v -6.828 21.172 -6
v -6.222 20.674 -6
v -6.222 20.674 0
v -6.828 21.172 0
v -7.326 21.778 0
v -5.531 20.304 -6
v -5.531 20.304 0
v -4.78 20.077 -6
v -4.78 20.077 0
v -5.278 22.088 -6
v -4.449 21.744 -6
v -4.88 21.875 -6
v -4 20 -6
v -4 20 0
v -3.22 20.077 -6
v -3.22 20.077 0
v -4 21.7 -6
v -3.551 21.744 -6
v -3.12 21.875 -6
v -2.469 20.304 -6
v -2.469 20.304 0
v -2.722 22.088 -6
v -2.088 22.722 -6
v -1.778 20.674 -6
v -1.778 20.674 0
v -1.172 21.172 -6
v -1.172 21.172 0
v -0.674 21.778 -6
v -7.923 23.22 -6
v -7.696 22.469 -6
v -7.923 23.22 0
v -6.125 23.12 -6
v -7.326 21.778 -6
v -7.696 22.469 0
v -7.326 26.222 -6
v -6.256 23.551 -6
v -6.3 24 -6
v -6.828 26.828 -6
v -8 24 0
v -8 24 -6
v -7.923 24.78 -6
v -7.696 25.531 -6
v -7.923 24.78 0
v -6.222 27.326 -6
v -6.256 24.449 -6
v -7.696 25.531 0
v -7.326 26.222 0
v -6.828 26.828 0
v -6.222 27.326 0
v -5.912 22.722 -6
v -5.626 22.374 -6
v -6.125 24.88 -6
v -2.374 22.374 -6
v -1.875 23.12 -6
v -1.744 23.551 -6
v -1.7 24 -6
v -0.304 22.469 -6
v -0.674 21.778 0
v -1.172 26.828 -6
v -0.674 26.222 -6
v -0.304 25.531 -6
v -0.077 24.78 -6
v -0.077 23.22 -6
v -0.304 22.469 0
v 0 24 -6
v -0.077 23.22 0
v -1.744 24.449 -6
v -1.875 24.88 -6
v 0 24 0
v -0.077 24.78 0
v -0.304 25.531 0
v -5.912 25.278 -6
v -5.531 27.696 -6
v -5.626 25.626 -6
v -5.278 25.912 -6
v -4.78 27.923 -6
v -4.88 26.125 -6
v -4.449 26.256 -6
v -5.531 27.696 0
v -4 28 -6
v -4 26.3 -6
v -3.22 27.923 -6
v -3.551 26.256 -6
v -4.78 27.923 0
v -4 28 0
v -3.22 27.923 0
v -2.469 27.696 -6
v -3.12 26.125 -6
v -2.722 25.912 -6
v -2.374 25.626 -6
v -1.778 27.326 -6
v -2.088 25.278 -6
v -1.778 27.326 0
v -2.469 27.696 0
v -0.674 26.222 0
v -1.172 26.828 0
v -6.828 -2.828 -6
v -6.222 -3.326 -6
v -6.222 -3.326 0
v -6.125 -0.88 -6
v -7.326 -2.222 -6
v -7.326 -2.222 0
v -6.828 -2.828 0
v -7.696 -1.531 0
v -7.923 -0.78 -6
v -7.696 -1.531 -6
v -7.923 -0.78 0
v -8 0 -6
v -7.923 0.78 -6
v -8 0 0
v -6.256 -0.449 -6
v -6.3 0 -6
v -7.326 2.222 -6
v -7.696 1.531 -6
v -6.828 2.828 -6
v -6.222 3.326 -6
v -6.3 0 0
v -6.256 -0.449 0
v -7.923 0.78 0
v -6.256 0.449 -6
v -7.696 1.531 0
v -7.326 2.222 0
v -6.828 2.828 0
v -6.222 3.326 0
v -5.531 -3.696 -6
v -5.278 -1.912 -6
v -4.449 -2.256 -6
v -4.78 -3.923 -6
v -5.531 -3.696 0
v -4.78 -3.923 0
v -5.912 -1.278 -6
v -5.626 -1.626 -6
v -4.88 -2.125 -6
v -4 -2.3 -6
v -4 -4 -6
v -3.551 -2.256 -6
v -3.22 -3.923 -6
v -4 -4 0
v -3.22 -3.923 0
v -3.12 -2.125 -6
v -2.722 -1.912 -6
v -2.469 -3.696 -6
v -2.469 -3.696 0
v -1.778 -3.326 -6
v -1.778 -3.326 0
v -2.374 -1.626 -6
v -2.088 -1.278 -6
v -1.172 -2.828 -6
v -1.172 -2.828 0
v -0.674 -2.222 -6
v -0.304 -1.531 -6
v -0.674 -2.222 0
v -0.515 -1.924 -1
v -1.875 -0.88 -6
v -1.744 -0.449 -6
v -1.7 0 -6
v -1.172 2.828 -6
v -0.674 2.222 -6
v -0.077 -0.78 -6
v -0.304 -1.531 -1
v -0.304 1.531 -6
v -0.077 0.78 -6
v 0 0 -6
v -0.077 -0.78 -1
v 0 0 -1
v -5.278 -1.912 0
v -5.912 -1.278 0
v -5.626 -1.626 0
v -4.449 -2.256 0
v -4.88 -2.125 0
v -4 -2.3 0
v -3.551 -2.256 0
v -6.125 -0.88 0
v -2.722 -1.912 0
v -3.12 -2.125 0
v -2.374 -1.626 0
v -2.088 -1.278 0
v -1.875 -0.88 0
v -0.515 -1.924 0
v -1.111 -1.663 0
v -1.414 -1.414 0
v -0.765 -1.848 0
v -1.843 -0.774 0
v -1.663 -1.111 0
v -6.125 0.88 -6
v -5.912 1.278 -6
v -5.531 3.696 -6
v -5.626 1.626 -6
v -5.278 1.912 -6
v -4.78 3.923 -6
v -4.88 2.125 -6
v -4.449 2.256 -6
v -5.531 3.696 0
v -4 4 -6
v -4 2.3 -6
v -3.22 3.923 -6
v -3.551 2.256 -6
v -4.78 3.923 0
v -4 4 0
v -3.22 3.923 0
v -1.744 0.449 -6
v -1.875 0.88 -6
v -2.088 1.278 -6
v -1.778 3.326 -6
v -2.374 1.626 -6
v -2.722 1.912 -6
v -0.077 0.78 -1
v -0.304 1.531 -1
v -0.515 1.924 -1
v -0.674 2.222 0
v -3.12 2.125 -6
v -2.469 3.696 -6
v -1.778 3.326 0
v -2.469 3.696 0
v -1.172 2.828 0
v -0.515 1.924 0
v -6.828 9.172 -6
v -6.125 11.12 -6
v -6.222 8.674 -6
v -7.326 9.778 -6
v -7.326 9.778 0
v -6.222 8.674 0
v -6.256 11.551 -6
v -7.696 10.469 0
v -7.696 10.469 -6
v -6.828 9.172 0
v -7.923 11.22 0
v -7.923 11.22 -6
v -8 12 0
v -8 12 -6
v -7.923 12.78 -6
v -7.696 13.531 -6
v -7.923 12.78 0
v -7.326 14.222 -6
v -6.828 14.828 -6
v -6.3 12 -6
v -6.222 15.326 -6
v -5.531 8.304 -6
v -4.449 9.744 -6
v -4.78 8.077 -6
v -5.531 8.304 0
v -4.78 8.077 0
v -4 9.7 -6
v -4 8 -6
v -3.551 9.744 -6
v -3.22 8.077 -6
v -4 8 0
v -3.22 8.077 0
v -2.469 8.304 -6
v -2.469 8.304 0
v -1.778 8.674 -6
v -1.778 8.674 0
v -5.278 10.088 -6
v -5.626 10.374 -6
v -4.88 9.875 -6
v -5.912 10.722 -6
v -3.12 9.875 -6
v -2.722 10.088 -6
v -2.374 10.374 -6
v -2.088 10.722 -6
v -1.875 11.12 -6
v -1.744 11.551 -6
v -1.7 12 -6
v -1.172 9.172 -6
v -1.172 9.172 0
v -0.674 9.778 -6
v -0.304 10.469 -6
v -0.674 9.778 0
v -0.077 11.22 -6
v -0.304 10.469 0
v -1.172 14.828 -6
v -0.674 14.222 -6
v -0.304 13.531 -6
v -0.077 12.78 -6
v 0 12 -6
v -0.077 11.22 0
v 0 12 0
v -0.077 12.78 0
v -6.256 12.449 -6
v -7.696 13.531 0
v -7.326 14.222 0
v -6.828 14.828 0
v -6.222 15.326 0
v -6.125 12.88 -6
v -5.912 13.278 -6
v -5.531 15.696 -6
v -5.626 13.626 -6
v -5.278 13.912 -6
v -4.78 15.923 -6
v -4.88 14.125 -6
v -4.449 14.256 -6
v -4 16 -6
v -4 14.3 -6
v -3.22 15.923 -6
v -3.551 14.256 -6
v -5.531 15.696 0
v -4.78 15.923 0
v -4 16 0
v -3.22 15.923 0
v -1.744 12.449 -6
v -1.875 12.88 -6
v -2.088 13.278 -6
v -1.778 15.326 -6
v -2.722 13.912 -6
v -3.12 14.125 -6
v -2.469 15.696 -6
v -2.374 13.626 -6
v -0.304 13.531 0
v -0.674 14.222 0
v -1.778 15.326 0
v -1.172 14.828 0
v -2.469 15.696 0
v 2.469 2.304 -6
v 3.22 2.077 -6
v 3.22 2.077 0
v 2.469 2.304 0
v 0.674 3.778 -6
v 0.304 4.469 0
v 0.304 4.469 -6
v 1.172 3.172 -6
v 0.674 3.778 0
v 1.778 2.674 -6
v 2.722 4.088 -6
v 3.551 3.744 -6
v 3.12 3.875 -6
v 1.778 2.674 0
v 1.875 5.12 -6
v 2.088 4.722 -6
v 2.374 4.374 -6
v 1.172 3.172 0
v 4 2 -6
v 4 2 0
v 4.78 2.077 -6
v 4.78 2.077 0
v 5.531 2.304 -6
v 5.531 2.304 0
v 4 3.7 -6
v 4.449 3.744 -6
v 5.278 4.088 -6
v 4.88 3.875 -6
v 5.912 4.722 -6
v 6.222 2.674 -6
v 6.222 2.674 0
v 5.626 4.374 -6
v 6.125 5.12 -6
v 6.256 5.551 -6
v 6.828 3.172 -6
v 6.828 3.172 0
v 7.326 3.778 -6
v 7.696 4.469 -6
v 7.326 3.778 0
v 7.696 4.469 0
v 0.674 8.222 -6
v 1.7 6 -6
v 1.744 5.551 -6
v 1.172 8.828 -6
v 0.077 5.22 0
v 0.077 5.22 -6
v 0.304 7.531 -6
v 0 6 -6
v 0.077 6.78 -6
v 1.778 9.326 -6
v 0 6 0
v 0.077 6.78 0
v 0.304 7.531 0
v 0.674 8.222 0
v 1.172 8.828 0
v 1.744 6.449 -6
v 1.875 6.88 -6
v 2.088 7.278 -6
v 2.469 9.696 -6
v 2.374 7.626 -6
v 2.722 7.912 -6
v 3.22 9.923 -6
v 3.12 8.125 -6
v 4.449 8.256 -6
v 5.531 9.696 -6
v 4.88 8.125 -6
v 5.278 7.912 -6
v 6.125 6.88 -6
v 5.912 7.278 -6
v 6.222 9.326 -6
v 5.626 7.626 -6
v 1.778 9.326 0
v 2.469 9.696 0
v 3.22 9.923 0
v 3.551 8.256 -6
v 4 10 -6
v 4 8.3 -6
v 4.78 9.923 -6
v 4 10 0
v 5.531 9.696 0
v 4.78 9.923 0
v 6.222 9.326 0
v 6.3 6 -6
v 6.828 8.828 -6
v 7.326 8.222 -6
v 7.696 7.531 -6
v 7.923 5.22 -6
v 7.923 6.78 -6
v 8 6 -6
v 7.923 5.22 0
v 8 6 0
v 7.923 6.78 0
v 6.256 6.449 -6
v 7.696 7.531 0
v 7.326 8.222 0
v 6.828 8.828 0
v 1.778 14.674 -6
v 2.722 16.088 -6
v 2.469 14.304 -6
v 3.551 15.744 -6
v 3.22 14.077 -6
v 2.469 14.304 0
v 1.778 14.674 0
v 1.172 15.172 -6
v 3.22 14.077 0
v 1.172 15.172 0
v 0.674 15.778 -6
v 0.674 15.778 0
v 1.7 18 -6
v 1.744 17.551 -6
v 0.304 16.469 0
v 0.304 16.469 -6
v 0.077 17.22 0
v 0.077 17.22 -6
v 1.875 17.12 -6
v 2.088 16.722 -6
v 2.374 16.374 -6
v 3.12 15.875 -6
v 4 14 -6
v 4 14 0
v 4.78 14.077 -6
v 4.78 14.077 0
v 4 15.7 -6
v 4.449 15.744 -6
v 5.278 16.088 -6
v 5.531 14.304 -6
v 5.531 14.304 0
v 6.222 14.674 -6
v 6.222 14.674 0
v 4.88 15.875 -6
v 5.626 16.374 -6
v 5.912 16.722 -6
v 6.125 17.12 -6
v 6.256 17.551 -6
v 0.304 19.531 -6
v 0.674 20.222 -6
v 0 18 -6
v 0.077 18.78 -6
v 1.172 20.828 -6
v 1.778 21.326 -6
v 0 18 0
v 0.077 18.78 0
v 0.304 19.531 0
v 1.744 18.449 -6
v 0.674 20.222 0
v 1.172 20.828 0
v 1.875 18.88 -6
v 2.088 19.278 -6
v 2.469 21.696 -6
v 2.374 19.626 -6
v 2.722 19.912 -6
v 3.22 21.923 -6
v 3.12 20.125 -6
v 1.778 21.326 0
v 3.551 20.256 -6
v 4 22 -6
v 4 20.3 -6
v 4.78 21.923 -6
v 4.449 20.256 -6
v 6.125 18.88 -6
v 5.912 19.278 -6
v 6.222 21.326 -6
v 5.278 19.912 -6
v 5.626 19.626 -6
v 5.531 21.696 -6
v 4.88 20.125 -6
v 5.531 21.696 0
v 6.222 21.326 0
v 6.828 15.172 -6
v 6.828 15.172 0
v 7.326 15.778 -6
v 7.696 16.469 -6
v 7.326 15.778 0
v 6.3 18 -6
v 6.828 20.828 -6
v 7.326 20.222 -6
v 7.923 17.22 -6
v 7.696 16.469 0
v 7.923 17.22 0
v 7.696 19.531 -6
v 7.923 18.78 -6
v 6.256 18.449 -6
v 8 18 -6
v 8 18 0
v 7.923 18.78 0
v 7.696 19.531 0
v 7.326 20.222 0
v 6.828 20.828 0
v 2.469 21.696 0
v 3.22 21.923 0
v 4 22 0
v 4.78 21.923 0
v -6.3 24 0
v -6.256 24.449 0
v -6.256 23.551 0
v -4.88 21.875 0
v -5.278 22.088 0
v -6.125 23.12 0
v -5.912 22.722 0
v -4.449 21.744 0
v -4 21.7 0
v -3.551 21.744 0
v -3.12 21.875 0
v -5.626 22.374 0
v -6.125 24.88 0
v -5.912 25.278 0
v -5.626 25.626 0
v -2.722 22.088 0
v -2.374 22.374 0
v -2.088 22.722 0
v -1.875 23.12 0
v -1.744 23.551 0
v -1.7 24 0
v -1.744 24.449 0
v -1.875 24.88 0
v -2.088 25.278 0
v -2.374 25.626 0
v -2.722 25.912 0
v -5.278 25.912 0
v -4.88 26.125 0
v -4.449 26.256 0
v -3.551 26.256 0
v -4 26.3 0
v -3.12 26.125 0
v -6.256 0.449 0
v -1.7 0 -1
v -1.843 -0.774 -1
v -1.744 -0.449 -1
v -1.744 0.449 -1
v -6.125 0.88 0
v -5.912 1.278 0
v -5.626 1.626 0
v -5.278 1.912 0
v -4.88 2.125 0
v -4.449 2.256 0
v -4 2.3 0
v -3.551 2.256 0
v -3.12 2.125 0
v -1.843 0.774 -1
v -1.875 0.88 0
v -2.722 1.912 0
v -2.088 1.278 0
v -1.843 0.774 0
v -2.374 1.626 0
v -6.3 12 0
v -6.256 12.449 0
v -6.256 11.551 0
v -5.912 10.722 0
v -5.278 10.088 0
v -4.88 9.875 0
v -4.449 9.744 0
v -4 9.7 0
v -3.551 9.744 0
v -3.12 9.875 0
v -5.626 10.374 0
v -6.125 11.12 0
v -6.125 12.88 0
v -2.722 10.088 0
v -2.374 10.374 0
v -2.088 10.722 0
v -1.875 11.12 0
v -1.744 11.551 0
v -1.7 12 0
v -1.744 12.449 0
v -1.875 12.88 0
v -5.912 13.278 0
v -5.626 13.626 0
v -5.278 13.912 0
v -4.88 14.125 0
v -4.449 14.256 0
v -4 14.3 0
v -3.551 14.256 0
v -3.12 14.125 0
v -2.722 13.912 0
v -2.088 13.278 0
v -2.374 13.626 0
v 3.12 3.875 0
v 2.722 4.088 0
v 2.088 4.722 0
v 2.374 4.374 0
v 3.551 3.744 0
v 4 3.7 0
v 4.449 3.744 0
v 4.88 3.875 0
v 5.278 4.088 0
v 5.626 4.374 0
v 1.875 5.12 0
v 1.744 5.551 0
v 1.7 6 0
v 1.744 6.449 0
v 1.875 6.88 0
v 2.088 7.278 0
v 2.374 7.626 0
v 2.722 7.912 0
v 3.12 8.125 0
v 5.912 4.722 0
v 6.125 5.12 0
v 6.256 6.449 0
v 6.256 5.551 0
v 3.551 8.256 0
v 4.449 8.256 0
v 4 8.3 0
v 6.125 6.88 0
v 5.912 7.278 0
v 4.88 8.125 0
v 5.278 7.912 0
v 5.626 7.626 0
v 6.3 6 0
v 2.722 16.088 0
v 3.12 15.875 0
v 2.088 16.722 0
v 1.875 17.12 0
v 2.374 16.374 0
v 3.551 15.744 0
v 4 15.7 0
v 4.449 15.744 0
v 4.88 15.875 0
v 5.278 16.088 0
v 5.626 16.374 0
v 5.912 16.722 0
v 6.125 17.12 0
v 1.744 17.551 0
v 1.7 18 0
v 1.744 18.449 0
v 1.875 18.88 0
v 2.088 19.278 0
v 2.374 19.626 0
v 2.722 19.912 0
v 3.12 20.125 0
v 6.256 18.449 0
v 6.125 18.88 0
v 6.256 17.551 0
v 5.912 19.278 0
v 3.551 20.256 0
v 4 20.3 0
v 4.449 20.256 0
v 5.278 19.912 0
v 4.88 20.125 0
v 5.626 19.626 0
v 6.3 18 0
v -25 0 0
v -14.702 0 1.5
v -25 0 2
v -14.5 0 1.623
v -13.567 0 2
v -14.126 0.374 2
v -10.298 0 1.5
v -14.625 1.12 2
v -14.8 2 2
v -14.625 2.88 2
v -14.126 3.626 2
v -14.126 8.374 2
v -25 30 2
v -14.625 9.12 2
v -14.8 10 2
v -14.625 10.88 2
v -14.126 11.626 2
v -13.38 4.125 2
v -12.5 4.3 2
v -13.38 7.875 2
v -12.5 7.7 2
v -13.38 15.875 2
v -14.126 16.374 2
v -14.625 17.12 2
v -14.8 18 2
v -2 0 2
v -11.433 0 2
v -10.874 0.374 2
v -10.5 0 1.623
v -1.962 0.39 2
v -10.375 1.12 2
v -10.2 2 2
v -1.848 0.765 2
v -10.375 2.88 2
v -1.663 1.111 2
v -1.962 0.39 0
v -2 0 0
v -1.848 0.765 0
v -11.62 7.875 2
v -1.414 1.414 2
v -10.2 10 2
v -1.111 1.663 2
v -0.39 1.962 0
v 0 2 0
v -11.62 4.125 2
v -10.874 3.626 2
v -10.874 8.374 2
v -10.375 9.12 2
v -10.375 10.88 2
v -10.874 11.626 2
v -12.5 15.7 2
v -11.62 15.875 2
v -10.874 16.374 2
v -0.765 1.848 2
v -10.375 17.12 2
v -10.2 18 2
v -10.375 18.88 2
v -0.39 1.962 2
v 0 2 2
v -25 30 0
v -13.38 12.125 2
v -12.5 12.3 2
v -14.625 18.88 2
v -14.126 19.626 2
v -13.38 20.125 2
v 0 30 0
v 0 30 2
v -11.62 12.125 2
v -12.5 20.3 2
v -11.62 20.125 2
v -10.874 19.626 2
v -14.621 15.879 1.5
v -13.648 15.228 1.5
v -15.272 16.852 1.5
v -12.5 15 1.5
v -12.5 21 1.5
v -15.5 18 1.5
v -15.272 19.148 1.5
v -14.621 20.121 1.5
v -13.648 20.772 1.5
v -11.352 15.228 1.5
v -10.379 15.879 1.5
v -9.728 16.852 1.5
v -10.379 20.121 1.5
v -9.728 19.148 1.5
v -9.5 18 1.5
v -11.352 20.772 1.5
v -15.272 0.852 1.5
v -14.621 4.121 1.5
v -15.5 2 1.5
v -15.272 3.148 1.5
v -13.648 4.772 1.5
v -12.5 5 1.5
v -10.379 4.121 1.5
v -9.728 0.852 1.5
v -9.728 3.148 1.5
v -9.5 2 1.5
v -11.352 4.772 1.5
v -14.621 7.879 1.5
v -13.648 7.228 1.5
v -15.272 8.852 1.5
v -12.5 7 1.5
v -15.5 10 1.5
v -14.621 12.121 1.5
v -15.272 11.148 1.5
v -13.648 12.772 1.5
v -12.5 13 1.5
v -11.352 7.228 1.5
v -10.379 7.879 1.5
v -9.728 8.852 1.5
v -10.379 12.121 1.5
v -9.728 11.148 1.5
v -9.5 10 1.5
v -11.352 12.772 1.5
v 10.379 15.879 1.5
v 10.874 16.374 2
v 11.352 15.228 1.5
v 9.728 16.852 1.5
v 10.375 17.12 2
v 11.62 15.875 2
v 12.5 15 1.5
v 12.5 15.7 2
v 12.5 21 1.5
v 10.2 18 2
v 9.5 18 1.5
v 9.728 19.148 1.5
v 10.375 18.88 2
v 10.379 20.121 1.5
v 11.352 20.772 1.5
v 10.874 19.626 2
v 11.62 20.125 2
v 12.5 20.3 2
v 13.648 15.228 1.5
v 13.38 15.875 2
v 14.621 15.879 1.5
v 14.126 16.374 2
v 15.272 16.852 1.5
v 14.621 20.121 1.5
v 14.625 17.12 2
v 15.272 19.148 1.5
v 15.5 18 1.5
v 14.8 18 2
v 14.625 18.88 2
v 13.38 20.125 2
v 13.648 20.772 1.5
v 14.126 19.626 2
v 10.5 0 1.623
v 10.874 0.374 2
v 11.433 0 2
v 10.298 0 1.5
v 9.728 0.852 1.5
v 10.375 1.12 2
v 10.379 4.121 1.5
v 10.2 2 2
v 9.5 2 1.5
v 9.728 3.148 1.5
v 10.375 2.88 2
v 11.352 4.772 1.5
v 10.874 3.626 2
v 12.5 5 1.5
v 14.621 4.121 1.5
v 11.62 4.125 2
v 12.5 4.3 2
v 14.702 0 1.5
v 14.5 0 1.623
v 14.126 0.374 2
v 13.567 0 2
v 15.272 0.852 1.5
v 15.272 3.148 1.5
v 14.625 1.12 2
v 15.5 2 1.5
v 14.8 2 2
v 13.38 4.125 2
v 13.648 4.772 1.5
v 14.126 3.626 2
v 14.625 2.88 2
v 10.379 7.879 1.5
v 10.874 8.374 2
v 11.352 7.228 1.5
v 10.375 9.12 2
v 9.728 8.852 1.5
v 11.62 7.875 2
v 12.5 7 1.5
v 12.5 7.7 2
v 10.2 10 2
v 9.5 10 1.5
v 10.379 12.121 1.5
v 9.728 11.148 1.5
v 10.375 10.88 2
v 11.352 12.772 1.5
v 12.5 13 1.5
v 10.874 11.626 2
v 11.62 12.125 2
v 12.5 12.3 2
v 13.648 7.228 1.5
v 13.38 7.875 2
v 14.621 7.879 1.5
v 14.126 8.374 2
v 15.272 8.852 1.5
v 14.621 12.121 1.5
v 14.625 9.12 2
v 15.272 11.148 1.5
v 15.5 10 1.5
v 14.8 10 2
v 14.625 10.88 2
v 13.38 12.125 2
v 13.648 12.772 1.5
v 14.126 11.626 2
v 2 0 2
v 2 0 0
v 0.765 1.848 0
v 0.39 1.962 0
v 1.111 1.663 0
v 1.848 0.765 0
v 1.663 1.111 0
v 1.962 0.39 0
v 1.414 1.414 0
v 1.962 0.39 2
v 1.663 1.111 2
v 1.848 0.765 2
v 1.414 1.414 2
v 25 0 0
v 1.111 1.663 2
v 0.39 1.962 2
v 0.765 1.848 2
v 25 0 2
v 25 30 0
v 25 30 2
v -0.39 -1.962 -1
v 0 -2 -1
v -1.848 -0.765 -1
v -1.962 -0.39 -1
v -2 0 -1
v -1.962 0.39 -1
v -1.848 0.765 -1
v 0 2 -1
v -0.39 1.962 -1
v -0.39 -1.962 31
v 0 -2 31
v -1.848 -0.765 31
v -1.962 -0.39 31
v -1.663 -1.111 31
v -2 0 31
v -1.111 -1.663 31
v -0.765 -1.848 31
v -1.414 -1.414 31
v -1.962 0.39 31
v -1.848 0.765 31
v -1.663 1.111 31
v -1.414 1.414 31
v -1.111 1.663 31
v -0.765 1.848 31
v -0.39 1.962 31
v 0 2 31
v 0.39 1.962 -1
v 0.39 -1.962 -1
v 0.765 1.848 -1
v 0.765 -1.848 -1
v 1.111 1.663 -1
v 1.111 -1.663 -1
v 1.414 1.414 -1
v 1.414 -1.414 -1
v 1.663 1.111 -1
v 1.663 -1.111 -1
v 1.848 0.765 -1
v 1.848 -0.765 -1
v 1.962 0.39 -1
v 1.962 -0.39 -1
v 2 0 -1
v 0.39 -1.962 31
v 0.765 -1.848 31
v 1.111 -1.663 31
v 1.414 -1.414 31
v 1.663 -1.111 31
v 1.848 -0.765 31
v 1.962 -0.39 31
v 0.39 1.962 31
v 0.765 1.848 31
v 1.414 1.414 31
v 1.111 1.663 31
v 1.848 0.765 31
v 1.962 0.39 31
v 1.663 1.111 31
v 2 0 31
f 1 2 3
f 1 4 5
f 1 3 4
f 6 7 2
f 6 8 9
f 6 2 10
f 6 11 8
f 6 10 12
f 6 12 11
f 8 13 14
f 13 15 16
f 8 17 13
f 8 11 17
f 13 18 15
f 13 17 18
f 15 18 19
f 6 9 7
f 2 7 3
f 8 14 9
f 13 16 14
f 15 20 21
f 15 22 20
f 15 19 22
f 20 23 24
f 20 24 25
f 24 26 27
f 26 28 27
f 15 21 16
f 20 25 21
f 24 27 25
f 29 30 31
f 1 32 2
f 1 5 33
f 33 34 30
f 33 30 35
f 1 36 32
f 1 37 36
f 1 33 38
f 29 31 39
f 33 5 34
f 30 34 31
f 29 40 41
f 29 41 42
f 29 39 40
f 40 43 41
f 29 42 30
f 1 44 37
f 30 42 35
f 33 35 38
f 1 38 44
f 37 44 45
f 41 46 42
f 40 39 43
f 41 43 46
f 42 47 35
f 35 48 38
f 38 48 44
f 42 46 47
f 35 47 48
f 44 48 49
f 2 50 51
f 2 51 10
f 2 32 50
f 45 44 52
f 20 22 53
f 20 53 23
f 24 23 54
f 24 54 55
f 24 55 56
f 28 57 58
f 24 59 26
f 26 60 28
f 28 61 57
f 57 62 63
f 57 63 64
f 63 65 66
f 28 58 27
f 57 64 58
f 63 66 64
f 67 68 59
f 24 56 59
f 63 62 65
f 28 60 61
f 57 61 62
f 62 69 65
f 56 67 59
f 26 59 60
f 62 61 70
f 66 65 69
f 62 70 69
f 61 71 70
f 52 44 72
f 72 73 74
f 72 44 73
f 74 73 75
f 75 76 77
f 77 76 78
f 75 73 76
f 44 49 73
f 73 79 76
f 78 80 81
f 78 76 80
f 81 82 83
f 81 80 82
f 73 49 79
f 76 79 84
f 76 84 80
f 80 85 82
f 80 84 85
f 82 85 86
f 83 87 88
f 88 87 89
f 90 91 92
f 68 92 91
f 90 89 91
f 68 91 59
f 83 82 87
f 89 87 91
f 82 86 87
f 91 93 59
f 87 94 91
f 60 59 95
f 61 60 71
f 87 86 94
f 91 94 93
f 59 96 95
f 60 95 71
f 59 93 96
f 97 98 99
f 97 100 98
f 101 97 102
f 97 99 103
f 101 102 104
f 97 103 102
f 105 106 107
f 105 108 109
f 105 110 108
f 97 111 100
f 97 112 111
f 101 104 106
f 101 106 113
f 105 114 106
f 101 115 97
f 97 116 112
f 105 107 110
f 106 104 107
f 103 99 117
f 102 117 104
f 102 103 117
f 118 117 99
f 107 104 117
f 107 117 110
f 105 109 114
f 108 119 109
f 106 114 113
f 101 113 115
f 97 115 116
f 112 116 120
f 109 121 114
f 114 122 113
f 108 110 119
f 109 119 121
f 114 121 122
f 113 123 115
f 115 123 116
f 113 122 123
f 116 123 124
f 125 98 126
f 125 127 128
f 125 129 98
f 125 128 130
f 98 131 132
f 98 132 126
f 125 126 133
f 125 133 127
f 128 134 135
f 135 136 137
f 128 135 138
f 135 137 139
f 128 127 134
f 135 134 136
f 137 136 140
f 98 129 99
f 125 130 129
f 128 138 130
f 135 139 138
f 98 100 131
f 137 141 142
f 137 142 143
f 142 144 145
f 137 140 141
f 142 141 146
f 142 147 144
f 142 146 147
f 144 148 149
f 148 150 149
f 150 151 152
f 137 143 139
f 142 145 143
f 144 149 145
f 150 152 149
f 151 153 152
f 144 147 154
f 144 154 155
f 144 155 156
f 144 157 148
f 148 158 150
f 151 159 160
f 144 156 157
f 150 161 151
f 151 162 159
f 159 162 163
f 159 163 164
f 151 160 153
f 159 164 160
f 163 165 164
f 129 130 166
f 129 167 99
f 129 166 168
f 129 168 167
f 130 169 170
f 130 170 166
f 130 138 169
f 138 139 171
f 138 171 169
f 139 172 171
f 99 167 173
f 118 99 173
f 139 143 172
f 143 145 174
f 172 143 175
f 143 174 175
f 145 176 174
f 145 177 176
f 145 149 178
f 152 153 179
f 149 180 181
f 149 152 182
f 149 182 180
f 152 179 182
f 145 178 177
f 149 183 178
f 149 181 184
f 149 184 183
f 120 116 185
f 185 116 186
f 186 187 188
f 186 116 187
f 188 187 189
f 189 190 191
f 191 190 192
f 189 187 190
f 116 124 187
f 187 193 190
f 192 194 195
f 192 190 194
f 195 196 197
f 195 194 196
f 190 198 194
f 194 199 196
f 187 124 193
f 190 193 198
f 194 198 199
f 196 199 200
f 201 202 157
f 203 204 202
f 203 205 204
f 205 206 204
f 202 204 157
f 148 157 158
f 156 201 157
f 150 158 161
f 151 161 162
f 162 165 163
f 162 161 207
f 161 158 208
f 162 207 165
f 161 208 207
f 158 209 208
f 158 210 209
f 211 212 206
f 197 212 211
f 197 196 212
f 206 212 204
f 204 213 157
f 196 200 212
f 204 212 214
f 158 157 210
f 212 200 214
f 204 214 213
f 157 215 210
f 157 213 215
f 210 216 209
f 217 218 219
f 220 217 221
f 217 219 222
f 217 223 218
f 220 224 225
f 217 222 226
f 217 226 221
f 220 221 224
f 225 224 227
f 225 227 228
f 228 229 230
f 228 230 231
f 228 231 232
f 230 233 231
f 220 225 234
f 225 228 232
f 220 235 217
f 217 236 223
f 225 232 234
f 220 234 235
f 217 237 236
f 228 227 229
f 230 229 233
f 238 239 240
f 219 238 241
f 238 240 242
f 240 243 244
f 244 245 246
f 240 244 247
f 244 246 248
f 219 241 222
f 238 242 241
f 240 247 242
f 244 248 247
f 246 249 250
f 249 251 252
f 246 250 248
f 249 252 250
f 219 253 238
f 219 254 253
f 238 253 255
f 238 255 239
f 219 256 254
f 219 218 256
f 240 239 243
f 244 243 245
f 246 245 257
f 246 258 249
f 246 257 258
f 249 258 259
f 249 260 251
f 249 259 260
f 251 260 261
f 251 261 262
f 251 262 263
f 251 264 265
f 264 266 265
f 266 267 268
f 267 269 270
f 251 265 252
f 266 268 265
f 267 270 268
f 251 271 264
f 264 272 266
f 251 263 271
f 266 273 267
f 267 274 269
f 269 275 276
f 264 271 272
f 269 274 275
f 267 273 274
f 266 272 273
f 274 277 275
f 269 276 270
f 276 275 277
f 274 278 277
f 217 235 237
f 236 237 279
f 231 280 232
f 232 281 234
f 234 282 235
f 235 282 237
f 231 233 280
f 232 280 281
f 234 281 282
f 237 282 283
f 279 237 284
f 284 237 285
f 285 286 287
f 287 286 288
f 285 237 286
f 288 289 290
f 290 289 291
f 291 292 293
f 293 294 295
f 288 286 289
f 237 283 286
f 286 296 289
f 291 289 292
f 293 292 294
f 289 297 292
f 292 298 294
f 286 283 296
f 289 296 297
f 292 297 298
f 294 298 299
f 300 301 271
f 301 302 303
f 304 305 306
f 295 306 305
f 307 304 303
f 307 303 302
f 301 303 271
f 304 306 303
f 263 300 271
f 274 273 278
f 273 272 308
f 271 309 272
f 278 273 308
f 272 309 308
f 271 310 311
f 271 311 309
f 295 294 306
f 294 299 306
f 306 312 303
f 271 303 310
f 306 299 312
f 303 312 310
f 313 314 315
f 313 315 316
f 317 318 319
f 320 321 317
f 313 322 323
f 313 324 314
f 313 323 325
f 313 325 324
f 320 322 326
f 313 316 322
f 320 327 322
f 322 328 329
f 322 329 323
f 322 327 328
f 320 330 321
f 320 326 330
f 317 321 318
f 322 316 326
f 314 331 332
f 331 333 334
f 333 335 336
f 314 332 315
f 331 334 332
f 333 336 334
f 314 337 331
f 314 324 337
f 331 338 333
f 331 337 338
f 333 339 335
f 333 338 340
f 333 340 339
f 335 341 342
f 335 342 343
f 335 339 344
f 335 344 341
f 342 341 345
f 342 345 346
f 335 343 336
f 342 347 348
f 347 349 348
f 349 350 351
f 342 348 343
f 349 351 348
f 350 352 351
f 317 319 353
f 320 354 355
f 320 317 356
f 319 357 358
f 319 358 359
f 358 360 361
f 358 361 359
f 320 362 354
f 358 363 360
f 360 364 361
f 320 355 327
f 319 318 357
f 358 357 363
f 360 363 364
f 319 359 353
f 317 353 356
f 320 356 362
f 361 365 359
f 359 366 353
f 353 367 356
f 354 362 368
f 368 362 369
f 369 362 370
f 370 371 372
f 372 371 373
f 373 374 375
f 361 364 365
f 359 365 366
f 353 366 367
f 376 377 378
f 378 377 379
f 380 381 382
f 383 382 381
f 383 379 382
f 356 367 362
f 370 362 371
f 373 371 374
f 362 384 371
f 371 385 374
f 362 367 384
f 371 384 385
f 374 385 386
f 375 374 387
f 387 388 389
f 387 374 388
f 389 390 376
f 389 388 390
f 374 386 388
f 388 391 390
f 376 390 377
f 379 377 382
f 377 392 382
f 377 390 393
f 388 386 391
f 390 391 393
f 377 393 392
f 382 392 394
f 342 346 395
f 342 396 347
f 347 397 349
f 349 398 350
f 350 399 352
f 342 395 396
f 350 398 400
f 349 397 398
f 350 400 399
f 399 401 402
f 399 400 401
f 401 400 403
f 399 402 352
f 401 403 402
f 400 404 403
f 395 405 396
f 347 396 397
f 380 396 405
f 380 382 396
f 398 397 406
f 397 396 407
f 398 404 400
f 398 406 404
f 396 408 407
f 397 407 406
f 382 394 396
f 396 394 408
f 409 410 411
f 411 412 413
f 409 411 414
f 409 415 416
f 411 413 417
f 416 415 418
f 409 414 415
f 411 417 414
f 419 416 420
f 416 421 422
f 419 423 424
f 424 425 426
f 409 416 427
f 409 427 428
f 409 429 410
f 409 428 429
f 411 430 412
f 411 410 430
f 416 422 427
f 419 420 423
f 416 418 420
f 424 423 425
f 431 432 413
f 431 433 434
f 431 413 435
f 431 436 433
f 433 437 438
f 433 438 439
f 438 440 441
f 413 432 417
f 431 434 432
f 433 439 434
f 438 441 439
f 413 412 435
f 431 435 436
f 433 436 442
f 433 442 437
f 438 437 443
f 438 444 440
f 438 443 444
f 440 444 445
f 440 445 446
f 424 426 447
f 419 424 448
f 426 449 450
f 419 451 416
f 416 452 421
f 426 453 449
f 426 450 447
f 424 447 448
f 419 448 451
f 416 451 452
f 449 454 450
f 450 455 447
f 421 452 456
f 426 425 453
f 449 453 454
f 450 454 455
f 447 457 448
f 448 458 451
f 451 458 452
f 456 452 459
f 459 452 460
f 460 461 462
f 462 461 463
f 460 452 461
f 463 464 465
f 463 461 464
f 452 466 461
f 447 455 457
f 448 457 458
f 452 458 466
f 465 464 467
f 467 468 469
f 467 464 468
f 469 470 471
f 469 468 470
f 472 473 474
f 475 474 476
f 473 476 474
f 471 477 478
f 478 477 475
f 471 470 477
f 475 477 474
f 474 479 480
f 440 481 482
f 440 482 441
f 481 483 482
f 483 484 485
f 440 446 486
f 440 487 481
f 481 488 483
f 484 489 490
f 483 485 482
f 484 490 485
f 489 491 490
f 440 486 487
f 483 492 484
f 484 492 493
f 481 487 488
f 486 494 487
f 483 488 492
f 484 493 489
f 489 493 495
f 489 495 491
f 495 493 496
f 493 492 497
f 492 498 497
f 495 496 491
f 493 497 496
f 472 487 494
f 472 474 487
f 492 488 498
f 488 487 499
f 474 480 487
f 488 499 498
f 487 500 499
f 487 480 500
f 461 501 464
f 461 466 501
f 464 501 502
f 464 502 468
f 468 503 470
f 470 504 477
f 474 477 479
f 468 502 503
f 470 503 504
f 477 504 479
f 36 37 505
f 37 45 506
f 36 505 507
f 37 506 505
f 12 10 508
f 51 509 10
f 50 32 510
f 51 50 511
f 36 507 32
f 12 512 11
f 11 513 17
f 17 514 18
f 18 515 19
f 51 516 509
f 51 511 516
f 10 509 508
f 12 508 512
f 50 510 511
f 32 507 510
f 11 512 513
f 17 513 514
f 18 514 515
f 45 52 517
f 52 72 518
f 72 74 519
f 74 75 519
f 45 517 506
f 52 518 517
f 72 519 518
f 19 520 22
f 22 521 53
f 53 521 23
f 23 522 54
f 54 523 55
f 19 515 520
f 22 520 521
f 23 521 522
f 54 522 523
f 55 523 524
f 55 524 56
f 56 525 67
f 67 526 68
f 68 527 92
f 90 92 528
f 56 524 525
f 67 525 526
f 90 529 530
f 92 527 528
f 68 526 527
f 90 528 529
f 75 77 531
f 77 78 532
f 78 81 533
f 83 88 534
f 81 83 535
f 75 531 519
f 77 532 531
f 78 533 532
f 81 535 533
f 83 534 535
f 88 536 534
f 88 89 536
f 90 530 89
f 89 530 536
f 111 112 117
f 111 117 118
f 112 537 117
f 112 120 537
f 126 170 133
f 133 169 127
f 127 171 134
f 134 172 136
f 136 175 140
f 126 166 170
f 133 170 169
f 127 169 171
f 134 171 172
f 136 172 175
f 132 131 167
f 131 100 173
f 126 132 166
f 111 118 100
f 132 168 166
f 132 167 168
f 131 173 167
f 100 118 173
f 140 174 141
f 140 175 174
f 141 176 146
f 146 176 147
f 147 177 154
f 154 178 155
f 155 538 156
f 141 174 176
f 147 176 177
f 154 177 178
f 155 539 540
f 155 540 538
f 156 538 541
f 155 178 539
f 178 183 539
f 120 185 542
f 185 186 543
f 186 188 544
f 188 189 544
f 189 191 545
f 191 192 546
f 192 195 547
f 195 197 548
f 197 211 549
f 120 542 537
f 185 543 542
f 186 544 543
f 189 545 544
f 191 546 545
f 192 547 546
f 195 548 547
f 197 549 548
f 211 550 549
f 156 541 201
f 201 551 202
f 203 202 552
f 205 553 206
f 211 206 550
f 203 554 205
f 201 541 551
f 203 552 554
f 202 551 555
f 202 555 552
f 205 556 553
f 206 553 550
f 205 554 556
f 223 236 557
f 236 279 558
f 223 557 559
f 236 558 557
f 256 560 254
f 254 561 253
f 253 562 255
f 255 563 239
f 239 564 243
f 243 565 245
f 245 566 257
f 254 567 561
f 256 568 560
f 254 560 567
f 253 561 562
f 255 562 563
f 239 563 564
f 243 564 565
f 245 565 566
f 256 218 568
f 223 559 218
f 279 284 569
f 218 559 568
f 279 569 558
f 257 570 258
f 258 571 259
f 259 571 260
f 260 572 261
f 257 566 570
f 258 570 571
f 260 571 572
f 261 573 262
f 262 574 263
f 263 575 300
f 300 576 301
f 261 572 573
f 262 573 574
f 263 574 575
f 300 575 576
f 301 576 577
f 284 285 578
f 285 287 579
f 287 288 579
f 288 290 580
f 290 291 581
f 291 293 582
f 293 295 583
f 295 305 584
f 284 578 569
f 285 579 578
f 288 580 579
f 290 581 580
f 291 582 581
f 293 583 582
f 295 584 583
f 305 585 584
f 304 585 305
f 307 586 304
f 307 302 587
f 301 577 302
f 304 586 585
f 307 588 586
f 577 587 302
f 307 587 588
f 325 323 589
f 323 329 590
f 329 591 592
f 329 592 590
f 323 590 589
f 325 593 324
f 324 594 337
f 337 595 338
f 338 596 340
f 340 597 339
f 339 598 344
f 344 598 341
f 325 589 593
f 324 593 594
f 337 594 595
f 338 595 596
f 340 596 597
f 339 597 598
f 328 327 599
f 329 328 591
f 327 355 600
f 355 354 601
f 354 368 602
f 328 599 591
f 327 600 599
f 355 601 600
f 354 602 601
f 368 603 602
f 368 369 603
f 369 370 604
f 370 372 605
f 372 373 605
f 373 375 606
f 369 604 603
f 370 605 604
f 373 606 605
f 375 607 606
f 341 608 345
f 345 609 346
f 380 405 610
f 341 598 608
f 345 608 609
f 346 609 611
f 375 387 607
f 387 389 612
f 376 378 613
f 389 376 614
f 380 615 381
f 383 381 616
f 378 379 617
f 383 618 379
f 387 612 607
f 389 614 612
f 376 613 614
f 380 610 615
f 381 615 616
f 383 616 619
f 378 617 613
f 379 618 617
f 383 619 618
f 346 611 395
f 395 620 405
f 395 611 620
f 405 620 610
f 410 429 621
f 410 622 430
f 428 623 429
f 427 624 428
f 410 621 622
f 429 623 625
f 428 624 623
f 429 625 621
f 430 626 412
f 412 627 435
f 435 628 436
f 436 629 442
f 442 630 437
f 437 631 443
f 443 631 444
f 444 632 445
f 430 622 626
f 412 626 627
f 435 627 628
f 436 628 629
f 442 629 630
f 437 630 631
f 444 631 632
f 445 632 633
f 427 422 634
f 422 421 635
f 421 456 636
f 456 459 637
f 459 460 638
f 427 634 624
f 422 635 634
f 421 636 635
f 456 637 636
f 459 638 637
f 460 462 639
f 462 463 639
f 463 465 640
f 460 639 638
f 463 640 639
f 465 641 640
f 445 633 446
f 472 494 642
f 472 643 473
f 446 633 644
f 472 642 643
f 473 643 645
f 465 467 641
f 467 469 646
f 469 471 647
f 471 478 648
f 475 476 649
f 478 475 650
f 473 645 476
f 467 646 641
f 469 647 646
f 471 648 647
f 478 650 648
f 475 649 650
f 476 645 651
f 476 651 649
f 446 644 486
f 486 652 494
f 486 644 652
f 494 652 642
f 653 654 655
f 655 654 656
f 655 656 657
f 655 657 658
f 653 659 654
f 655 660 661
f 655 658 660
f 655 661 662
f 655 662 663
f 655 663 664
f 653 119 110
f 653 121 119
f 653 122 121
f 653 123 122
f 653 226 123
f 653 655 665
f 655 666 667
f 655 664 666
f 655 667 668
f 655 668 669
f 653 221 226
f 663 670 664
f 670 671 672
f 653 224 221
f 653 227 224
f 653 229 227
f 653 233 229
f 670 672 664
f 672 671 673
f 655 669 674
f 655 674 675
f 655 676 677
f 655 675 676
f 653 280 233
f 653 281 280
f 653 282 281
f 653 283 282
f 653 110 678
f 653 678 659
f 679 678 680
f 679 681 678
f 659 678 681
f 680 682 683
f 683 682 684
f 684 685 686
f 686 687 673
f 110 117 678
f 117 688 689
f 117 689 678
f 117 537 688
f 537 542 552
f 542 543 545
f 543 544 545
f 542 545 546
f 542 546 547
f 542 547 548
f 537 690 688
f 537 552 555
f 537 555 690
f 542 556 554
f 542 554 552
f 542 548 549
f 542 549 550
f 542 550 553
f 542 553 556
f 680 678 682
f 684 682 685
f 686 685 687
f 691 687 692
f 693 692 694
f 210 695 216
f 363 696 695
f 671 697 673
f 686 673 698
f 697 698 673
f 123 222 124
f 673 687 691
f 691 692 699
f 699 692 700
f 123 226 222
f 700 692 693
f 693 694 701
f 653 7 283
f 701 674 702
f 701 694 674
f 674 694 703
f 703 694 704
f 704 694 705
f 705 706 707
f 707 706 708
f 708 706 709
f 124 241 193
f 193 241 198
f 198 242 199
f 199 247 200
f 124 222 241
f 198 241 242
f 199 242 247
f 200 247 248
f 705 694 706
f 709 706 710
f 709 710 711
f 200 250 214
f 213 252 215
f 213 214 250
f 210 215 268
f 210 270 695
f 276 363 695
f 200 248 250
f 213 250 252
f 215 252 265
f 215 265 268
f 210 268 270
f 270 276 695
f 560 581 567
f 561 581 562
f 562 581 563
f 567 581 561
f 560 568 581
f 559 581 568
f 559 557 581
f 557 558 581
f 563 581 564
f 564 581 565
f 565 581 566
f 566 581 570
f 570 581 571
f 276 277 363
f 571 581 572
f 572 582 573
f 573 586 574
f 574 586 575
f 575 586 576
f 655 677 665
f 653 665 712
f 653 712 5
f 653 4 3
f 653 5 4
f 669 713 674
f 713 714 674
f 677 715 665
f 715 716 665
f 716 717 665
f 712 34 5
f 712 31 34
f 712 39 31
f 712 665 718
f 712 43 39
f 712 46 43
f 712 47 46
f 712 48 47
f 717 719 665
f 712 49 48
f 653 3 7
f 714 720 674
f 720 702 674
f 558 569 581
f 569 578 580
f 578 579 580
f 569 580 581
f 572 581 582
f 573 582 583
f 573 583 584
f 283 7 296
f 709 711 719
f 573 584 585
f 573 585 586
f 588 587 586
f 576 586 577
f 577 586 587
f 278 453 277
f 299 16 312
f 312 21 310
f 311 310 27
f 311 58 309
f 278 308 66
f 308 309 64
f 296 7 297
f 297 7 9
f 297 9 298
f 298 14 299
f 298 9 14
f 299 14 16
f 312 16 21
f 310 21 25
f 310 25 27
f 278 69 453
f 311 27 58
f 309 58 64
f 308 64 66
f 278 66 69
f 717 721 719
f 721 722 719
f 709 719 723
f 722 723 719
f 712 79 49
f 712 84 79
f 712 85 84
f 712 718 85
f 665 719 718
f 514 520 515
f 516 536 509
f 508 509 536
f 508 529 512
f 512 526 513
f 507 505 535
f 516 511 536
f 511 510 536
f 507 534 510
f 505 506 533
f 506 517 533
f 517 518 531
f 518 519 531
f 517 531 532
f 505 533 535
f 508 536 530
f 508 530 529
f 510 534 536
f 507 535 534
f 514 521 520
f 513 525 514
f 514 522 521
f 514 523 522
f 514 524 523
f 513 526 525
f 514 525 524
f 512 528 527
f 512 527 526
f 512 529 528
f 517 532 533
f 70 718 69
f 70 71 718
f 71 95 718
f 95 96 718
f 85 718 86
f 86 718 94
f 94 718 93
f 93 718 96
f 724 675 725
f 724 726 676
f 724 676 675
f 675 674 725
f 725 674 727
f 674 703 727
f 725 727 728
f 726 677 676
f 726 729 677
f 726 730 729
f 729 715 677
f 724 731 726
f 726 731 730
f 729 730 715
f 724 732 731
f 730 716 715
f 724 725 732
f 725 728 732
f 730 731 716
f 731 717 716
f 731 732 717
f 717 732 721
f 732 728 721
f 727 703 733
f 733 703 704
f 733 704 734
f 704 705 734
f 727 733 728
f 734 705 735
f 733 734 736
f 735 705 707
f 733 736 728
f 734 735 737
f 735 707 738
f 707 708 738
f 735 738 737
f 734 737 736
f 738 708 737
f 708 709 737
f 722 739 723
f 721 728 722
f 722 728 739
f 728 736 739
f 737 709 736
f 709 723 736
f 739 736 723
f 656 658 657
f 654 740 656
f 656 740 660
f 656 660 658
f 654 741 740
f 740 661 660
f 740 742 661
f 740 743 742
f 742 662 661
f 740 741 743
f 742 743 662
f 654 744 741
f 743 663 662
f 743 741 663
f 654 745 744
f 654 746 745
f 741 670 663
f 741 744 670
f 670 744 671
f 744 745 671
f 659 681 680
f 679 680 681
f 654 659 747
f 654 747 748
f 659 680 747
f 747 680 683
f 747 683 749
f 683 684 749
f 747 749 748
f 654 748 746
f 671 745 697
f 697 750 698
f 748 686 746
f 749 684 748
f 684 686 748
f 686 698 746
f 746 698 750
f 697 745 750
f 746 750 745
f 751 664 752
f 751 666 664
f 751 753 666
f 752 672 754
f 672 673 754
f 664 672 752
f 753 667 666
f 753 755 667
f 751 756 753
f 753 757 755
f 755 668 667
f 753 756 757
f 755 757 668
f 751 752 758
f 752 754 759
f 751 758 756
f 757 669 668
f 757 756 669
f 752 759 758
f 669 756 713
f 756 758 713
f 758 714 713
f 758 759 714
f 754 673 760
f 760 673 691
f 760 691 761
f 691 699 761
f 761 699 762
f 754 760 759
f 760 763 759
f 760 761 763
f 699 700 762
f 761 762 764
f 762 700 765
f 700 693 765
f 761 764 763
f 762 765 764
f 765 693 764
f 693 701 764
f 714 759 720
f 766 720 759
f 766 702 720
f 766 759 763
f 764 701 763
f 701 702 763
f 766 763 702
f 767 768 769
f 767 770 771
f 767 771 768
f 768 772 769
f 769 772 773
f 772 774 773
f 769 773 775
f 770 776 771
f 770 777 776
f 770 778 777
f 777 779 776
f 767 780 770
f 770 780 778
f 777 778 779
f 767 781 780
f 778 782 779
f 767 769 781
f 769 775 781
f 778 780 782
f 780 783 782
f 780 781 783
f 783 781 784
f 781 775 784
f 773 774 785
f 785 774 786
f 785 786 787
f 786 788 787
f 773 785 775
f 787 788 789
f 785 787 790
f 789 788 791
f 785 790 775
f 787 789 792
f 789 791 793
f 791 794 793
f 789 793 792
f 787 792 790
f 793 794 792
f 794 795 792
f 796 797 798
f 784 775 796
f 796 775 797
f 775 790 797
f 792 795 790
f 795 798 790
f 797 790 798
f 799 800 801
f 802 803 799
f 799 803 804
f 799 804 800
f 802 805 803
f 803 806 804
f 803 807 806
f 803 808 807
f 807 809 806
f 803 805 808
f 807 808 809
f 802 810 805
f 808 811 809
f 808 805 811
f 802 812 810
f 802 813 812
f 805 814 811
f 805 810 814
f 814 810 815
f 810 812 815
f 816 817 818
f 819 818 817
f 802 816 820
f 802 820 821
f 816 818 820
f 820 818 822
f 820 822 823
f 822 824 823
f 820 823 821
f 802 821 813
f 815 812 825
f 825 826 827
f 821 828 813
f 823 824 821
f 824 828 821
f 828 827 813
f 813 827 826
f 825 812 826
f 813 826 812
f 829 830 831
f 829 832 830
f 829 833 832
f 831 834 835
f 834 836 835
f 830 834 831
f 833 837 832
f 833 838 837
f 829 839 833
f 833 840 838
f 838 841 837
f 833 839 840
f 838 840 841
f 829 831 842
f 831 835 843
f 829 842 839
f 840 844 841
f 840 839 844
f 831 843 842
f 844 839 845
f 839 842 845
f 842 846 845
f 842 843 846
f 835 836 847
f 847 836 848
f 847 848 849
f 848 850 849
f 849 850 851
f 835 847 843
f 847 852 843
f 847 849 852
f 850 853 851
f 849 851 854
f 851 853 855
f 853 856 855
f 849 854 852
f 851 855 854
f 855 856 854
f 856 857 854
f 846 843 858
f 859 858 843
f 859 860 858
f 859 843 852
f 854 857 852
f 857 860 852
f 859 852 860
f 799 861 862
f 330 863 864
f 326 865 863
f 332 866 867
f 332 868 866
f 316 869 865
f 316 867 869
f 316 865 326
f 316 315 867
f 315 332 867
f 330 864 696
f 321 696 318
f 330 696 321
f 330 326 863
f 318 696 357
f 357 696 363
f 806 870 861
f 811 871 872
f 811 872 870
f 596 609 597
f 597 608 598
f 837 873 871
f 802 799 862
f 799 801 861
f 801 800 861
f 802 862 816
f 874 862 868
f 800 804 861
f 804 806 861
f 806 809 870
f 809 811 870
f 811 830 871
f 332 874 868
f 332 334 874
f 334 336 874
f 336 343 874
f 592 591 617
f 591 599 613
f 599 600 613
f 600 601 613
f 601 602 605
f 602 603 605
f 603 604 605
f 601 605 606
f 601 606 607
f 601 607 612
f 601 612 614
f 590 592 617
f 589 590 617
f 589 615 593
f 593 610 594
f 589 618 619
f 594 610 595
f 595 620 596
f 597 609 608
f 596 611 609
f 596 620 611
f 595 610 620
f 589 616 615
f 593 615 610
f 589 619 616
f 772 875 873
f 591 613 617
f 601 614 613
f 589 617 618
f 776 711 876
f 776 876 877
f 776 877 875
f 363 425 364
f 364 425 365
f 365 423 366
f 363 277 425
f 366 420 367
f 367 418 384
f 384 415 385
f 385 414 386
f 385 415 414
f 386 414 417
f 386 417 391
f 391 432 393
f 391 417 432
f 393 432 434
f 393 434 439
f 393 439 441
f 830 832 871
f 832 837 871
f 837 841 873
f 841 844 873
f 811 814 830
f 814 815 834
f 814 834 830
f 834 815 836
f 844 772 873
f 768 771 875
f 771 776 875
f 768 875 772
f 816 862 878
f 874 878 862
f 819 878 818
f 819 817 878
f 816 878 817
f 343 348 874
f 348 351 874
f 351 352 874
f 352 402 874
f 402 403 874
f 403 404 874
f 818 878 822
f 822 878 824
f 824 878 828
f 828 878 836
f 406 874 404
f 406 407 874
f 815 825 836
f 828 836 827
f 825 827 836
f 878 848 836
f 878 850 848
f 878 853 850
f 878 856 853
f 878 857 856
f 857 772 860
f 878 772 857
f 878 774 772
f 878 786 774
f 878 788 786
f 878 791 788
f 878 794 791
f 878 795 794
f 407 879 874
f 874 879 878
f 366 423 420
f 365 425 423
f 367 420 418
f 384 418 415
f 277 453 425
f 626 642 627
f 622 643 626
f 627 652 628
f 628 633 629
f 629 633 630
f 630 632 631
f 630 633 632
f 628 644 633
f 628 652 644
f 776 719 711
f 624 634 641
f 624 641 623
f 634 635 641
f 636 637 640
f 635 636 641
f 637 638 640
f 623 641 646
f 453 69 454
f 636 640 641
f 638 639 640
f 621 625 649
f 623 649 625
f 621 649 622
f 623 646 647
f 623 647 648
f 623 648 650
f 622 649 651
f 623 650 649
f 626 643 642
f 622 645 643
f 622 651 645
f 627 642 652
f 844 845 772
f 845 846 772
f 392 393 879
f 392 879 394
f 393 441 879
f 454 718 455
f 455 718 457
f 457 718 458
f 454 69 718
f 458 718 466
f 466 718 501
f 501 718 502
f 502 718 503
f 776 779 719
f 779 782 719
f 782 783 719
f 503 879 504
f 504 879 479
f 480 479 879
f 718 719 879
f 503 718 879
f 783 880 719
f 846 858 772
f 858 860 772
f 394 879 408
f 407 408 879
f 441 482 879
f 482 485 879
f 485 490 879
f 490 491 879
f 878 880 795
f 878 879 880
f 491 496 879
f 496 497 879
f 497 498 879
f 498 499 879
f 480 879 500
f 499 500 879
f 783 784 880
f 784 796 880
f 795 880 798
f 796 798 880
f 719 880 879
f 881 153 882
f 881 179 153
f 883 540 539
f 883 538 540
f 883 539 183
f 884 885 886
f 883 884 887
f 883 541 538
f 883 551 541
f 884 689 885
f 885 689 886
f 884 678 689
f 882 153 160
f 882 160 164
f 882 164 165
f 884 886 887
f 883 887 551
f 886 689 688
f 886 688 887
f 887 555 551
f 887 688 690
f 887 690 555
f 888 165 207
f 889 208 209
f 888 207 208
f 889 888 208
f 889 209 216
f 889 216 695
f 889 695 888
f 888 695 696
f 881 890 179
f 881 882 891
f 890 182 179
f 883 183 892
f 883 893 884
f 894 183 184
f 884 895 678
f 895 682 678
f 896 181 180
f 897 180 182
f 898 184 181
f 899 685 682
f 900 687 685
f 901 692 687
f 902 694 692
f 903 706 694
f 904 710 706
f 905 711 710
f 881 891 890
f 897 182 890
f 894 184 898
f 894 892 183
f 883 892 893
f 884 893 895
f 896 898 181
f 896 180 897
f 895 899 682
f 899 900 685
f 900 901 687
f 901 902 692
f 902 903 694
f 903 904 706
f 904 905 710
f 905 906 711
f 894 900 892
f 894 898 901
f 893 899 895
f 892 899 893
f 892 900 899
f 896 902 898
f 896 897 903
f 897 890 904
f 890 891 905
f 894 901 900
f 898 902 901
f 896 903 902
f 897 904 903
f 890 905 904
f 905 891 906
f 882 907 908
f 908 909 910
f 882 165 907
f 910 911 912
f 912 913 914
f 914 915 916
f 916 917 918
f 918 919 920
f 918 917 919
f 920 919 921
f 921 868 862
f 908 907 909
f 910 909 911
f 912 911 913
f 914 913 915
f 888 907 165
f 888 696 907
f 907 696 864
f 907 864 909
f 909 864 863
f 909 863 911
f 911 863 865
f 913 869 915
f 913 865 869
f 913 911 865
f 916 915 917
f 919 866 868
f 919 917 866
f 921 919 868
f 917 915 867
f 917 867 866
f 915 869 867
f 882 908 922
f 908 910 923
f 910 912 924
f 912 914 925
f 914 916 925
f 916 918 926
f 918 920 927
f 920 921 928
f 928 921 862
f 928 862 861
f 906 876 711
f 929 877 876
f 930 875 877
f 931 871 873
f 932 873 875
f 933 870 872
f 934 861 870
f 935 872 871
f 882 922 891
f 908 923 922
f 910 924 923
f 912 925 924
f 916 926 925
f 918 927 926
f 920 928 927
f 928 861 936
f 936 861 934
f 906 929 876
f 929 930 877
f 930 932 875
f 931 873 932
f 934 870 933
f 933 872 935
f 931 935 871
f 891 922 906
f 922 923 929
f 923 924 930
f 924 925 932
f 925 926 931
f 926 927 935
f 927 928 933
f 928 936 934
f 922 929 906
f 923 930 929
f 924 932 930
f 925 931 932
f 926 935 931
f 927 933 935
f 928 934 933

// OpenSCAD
// Butt Hinge Assembly - 180° Open State (Corrected)

// Parameters
leaf_length = 30;      // Y direction (along hinge axis)
leaf_width = 25;       // X direction (opening direction)
leaf_thickness = 2;
pin_diameter = 4;
pin_length = 32;
knuckle_outer_dia = 8;
knuckle_inner_dia = 4.6;
knuckle_length = 6;    // Height along Z axis

// Module: Knuckle (cylindrical hinge element)
module knuckle() {
    difference() {
        cylinder(d=knuckle_outer_dia, h=knuckle_length, center=false, $fn=32);
        cylinder(d=knuckle_inner_dia, h=knuckle_length, center=false, $fn=32);
    }
}

// Module: Countersunk hole (M3)
module countersunk_hole() {
    // Countersink: 6mm dia (top), 3.2mm dia (bottom), 1mm deep with taper
    translate([0, 0, -0.5]) {
        cylinder(d1=6, d2=3.2, h=1, center=false, $fn=16);
        cylinder(d=3.2, h=leaf_thickness+1, center=false, $fn=16);
    }
}

// Module: Left leaf with knuckles and countersunk holes
module left_leaf_assembly() {
    difference() {
        union() {
            // Base plate (extends in negative X direction)
            translate([-(leaf_width), 0, 0])
                cube([leaf_width, leaf_length, leaf_thickness]);
            
            // Knuckles at Y = 0, 12, 24 mm (positions 0, 2, 4 of 5 divisions)
            for (i = [0, 2, 4]) {
                y_pos = i * knuckle_length;
                translate([-knuckle_outer_dia/2, y_pos, -knuckle_length])
                    knuckle();
            }
        }
        
        // Countersunk holes at Y = 2, 10, 18 mm (8mm spacing)
        for (y_pos = [2, 10, 18]) {
            translate([-(leaf_width/2), y_pos, leaf_thickness])
                countersunk_hole();
        }
    }
}

// Module: Right leaf with knuckles and countersunk holes
module right_leaf_assembly() {
    difference() {
        union() {
            // Base plate (extends in positive X direction)
            cube([leaf_width, leaf_length, leaf_thickness]);
            
            // Knuckles at Y = 6, 18 mm (positions 1, 3 of 5 divisions)
            for (i = [1, 3]) {
                y_pos = i * knuckle_length;
                translate([knuckle_outer_dia/2, y_pos, -knuckle_length])
                    knuckle();
            }
        }
        
        // Countersunk holes at Y = 2, 10, 18 mm (8mm spacing)
        for (y_pos = [2, 10, 18]) {
            translate([leaf_width/2, y_pos, leaf_thickness])
                countersunk_hole();
        }
    }
}

// Module: Pin shaft
module pin_shaft() {
    cylinder(d=pin_diameter, h=pin_length, center=false, $fn=32);
}

// Assembly - 180° open state
// Pin shaft: centered at X=0, Y=0 to 30mm, Z=-1 to 31mm
translate([0, 0, -1])
    pin_shaft();

// Left leaf: extends in negative X, base at Z=0
translate([0, 0, 0])
    left_leaf_assembly();

// Right leaf: extends in positive X, base at Z=0 (180° open, same plane)
translate([0, 0, 0])
    right_leaf_assembly();
